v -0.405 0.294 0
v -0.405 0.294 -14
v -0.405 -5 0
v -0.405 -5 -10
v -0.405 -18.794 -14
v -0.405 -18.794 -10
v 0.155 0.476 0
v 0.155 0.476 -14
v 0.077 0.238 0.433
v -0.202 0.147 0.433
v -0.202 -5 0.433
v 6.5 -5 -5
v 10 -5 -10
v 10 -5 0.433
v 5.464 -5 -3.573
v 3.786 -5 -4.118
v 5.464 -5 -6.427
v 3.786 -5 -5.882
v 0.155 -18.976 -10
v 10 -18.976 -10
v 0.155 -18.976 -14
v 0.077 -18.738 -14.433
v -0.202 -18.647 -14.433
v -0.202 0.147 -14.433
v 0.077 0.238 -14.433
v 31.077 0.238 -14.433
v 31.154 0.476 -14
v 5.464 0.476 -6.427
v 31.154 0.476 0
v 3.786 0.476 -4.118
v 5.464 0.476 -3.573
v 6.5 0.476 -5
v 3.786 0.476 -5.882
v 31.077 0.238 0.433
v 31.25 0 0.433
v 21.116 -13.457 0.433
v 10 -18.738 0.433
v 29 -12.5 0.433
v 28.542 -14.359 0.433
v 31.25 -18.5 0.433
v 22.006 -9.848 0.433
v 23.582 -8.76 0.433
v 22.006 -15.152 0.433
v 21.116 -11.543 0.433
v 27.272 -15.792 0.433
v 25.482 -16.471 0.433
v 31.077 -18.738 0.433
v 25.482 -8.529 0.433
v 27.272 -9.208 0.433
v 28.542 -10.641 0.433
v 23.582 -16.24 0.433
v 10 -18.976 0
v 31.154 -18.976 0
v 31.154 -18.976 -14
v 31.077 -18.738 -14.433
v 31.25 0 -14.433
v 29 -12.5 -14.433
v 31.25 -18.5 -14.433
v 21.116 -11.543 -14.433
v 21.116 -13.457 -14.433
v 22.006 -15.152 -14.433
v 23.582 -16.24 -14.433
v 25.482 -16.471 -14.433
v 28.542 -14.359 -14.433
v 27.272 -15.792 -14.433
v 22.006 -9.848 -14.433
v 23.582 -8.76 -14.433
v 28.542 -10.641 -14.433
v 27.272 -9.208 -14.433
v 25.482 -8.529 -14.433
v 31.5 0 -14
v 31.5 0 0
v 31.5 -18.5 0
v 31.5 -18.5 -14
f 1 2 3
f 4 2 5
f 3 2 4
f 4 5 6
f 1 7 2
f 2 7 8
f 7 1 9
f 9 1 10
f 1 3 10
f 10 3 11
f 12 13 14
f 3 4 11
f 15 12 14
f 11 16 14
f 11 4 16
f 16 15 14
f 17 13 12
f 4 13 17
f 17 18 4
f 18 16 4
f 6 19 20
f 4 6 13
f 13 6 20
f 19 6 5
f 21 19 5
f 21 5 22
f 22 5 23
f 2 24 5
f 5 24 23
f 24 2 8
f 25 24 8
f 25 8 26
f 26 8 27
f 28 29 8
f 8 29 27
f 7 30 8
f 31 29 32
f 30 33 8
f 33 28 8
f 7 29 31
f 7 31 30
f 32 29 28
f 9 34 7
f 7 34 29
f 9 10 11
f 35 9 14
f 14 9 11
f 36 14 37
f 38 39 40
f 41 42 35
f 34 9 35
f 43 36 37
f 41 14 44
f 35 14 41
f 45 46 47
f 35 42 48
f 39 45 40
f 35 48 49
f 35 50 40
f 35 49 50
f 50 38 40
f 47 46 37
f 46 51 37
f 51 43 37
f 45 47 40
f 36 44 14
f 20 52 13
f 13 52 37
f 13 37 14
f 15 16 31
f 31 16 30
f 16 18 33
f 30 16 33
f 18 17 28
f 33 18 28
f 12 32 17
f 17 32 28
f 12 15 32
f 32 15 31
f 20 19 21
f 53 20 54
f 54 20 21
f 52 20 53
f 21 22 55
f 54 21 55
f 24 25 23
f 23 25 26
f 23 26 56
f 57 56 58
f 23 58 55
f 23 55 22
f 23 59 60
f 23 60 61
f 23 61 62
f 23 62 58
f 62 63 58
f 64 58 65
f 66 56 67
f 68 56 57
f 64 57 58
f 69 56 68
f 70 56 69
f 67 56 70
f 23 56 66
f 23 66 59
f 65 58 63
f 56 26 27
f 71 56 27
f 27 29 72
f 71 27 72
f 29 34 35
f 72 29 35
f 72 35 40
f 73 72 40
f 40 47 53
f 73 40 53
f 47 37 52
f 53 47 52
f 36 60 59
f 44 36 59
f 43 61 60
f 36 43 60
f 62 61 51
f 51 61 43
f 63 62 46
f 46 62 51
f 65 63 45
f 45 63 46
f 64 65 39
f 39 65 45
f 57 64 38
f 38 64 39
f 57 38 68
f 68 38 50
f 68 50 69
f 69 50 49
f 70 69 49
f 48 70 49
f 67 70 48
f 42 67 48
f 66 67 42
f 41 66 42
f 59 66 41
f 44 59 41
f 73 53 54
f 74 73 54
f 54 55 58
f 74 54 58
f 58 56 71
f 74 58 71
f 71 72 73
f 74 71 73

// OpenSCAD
rotate([180,0,0])

difference() {

minkowski() {
cube([32-1, 19.5-1, 15-1]);
sphere(r=0.5);
}

translate([-22, 5, -5])
cube([32, 19.5, 15]);

translate([5, -1, 5])
rotate([-90, 0, 0])
cylinder(r=1.5, h=10);

translate([25, 12.5, -1])
cylinder(r=4, h=20);

}
